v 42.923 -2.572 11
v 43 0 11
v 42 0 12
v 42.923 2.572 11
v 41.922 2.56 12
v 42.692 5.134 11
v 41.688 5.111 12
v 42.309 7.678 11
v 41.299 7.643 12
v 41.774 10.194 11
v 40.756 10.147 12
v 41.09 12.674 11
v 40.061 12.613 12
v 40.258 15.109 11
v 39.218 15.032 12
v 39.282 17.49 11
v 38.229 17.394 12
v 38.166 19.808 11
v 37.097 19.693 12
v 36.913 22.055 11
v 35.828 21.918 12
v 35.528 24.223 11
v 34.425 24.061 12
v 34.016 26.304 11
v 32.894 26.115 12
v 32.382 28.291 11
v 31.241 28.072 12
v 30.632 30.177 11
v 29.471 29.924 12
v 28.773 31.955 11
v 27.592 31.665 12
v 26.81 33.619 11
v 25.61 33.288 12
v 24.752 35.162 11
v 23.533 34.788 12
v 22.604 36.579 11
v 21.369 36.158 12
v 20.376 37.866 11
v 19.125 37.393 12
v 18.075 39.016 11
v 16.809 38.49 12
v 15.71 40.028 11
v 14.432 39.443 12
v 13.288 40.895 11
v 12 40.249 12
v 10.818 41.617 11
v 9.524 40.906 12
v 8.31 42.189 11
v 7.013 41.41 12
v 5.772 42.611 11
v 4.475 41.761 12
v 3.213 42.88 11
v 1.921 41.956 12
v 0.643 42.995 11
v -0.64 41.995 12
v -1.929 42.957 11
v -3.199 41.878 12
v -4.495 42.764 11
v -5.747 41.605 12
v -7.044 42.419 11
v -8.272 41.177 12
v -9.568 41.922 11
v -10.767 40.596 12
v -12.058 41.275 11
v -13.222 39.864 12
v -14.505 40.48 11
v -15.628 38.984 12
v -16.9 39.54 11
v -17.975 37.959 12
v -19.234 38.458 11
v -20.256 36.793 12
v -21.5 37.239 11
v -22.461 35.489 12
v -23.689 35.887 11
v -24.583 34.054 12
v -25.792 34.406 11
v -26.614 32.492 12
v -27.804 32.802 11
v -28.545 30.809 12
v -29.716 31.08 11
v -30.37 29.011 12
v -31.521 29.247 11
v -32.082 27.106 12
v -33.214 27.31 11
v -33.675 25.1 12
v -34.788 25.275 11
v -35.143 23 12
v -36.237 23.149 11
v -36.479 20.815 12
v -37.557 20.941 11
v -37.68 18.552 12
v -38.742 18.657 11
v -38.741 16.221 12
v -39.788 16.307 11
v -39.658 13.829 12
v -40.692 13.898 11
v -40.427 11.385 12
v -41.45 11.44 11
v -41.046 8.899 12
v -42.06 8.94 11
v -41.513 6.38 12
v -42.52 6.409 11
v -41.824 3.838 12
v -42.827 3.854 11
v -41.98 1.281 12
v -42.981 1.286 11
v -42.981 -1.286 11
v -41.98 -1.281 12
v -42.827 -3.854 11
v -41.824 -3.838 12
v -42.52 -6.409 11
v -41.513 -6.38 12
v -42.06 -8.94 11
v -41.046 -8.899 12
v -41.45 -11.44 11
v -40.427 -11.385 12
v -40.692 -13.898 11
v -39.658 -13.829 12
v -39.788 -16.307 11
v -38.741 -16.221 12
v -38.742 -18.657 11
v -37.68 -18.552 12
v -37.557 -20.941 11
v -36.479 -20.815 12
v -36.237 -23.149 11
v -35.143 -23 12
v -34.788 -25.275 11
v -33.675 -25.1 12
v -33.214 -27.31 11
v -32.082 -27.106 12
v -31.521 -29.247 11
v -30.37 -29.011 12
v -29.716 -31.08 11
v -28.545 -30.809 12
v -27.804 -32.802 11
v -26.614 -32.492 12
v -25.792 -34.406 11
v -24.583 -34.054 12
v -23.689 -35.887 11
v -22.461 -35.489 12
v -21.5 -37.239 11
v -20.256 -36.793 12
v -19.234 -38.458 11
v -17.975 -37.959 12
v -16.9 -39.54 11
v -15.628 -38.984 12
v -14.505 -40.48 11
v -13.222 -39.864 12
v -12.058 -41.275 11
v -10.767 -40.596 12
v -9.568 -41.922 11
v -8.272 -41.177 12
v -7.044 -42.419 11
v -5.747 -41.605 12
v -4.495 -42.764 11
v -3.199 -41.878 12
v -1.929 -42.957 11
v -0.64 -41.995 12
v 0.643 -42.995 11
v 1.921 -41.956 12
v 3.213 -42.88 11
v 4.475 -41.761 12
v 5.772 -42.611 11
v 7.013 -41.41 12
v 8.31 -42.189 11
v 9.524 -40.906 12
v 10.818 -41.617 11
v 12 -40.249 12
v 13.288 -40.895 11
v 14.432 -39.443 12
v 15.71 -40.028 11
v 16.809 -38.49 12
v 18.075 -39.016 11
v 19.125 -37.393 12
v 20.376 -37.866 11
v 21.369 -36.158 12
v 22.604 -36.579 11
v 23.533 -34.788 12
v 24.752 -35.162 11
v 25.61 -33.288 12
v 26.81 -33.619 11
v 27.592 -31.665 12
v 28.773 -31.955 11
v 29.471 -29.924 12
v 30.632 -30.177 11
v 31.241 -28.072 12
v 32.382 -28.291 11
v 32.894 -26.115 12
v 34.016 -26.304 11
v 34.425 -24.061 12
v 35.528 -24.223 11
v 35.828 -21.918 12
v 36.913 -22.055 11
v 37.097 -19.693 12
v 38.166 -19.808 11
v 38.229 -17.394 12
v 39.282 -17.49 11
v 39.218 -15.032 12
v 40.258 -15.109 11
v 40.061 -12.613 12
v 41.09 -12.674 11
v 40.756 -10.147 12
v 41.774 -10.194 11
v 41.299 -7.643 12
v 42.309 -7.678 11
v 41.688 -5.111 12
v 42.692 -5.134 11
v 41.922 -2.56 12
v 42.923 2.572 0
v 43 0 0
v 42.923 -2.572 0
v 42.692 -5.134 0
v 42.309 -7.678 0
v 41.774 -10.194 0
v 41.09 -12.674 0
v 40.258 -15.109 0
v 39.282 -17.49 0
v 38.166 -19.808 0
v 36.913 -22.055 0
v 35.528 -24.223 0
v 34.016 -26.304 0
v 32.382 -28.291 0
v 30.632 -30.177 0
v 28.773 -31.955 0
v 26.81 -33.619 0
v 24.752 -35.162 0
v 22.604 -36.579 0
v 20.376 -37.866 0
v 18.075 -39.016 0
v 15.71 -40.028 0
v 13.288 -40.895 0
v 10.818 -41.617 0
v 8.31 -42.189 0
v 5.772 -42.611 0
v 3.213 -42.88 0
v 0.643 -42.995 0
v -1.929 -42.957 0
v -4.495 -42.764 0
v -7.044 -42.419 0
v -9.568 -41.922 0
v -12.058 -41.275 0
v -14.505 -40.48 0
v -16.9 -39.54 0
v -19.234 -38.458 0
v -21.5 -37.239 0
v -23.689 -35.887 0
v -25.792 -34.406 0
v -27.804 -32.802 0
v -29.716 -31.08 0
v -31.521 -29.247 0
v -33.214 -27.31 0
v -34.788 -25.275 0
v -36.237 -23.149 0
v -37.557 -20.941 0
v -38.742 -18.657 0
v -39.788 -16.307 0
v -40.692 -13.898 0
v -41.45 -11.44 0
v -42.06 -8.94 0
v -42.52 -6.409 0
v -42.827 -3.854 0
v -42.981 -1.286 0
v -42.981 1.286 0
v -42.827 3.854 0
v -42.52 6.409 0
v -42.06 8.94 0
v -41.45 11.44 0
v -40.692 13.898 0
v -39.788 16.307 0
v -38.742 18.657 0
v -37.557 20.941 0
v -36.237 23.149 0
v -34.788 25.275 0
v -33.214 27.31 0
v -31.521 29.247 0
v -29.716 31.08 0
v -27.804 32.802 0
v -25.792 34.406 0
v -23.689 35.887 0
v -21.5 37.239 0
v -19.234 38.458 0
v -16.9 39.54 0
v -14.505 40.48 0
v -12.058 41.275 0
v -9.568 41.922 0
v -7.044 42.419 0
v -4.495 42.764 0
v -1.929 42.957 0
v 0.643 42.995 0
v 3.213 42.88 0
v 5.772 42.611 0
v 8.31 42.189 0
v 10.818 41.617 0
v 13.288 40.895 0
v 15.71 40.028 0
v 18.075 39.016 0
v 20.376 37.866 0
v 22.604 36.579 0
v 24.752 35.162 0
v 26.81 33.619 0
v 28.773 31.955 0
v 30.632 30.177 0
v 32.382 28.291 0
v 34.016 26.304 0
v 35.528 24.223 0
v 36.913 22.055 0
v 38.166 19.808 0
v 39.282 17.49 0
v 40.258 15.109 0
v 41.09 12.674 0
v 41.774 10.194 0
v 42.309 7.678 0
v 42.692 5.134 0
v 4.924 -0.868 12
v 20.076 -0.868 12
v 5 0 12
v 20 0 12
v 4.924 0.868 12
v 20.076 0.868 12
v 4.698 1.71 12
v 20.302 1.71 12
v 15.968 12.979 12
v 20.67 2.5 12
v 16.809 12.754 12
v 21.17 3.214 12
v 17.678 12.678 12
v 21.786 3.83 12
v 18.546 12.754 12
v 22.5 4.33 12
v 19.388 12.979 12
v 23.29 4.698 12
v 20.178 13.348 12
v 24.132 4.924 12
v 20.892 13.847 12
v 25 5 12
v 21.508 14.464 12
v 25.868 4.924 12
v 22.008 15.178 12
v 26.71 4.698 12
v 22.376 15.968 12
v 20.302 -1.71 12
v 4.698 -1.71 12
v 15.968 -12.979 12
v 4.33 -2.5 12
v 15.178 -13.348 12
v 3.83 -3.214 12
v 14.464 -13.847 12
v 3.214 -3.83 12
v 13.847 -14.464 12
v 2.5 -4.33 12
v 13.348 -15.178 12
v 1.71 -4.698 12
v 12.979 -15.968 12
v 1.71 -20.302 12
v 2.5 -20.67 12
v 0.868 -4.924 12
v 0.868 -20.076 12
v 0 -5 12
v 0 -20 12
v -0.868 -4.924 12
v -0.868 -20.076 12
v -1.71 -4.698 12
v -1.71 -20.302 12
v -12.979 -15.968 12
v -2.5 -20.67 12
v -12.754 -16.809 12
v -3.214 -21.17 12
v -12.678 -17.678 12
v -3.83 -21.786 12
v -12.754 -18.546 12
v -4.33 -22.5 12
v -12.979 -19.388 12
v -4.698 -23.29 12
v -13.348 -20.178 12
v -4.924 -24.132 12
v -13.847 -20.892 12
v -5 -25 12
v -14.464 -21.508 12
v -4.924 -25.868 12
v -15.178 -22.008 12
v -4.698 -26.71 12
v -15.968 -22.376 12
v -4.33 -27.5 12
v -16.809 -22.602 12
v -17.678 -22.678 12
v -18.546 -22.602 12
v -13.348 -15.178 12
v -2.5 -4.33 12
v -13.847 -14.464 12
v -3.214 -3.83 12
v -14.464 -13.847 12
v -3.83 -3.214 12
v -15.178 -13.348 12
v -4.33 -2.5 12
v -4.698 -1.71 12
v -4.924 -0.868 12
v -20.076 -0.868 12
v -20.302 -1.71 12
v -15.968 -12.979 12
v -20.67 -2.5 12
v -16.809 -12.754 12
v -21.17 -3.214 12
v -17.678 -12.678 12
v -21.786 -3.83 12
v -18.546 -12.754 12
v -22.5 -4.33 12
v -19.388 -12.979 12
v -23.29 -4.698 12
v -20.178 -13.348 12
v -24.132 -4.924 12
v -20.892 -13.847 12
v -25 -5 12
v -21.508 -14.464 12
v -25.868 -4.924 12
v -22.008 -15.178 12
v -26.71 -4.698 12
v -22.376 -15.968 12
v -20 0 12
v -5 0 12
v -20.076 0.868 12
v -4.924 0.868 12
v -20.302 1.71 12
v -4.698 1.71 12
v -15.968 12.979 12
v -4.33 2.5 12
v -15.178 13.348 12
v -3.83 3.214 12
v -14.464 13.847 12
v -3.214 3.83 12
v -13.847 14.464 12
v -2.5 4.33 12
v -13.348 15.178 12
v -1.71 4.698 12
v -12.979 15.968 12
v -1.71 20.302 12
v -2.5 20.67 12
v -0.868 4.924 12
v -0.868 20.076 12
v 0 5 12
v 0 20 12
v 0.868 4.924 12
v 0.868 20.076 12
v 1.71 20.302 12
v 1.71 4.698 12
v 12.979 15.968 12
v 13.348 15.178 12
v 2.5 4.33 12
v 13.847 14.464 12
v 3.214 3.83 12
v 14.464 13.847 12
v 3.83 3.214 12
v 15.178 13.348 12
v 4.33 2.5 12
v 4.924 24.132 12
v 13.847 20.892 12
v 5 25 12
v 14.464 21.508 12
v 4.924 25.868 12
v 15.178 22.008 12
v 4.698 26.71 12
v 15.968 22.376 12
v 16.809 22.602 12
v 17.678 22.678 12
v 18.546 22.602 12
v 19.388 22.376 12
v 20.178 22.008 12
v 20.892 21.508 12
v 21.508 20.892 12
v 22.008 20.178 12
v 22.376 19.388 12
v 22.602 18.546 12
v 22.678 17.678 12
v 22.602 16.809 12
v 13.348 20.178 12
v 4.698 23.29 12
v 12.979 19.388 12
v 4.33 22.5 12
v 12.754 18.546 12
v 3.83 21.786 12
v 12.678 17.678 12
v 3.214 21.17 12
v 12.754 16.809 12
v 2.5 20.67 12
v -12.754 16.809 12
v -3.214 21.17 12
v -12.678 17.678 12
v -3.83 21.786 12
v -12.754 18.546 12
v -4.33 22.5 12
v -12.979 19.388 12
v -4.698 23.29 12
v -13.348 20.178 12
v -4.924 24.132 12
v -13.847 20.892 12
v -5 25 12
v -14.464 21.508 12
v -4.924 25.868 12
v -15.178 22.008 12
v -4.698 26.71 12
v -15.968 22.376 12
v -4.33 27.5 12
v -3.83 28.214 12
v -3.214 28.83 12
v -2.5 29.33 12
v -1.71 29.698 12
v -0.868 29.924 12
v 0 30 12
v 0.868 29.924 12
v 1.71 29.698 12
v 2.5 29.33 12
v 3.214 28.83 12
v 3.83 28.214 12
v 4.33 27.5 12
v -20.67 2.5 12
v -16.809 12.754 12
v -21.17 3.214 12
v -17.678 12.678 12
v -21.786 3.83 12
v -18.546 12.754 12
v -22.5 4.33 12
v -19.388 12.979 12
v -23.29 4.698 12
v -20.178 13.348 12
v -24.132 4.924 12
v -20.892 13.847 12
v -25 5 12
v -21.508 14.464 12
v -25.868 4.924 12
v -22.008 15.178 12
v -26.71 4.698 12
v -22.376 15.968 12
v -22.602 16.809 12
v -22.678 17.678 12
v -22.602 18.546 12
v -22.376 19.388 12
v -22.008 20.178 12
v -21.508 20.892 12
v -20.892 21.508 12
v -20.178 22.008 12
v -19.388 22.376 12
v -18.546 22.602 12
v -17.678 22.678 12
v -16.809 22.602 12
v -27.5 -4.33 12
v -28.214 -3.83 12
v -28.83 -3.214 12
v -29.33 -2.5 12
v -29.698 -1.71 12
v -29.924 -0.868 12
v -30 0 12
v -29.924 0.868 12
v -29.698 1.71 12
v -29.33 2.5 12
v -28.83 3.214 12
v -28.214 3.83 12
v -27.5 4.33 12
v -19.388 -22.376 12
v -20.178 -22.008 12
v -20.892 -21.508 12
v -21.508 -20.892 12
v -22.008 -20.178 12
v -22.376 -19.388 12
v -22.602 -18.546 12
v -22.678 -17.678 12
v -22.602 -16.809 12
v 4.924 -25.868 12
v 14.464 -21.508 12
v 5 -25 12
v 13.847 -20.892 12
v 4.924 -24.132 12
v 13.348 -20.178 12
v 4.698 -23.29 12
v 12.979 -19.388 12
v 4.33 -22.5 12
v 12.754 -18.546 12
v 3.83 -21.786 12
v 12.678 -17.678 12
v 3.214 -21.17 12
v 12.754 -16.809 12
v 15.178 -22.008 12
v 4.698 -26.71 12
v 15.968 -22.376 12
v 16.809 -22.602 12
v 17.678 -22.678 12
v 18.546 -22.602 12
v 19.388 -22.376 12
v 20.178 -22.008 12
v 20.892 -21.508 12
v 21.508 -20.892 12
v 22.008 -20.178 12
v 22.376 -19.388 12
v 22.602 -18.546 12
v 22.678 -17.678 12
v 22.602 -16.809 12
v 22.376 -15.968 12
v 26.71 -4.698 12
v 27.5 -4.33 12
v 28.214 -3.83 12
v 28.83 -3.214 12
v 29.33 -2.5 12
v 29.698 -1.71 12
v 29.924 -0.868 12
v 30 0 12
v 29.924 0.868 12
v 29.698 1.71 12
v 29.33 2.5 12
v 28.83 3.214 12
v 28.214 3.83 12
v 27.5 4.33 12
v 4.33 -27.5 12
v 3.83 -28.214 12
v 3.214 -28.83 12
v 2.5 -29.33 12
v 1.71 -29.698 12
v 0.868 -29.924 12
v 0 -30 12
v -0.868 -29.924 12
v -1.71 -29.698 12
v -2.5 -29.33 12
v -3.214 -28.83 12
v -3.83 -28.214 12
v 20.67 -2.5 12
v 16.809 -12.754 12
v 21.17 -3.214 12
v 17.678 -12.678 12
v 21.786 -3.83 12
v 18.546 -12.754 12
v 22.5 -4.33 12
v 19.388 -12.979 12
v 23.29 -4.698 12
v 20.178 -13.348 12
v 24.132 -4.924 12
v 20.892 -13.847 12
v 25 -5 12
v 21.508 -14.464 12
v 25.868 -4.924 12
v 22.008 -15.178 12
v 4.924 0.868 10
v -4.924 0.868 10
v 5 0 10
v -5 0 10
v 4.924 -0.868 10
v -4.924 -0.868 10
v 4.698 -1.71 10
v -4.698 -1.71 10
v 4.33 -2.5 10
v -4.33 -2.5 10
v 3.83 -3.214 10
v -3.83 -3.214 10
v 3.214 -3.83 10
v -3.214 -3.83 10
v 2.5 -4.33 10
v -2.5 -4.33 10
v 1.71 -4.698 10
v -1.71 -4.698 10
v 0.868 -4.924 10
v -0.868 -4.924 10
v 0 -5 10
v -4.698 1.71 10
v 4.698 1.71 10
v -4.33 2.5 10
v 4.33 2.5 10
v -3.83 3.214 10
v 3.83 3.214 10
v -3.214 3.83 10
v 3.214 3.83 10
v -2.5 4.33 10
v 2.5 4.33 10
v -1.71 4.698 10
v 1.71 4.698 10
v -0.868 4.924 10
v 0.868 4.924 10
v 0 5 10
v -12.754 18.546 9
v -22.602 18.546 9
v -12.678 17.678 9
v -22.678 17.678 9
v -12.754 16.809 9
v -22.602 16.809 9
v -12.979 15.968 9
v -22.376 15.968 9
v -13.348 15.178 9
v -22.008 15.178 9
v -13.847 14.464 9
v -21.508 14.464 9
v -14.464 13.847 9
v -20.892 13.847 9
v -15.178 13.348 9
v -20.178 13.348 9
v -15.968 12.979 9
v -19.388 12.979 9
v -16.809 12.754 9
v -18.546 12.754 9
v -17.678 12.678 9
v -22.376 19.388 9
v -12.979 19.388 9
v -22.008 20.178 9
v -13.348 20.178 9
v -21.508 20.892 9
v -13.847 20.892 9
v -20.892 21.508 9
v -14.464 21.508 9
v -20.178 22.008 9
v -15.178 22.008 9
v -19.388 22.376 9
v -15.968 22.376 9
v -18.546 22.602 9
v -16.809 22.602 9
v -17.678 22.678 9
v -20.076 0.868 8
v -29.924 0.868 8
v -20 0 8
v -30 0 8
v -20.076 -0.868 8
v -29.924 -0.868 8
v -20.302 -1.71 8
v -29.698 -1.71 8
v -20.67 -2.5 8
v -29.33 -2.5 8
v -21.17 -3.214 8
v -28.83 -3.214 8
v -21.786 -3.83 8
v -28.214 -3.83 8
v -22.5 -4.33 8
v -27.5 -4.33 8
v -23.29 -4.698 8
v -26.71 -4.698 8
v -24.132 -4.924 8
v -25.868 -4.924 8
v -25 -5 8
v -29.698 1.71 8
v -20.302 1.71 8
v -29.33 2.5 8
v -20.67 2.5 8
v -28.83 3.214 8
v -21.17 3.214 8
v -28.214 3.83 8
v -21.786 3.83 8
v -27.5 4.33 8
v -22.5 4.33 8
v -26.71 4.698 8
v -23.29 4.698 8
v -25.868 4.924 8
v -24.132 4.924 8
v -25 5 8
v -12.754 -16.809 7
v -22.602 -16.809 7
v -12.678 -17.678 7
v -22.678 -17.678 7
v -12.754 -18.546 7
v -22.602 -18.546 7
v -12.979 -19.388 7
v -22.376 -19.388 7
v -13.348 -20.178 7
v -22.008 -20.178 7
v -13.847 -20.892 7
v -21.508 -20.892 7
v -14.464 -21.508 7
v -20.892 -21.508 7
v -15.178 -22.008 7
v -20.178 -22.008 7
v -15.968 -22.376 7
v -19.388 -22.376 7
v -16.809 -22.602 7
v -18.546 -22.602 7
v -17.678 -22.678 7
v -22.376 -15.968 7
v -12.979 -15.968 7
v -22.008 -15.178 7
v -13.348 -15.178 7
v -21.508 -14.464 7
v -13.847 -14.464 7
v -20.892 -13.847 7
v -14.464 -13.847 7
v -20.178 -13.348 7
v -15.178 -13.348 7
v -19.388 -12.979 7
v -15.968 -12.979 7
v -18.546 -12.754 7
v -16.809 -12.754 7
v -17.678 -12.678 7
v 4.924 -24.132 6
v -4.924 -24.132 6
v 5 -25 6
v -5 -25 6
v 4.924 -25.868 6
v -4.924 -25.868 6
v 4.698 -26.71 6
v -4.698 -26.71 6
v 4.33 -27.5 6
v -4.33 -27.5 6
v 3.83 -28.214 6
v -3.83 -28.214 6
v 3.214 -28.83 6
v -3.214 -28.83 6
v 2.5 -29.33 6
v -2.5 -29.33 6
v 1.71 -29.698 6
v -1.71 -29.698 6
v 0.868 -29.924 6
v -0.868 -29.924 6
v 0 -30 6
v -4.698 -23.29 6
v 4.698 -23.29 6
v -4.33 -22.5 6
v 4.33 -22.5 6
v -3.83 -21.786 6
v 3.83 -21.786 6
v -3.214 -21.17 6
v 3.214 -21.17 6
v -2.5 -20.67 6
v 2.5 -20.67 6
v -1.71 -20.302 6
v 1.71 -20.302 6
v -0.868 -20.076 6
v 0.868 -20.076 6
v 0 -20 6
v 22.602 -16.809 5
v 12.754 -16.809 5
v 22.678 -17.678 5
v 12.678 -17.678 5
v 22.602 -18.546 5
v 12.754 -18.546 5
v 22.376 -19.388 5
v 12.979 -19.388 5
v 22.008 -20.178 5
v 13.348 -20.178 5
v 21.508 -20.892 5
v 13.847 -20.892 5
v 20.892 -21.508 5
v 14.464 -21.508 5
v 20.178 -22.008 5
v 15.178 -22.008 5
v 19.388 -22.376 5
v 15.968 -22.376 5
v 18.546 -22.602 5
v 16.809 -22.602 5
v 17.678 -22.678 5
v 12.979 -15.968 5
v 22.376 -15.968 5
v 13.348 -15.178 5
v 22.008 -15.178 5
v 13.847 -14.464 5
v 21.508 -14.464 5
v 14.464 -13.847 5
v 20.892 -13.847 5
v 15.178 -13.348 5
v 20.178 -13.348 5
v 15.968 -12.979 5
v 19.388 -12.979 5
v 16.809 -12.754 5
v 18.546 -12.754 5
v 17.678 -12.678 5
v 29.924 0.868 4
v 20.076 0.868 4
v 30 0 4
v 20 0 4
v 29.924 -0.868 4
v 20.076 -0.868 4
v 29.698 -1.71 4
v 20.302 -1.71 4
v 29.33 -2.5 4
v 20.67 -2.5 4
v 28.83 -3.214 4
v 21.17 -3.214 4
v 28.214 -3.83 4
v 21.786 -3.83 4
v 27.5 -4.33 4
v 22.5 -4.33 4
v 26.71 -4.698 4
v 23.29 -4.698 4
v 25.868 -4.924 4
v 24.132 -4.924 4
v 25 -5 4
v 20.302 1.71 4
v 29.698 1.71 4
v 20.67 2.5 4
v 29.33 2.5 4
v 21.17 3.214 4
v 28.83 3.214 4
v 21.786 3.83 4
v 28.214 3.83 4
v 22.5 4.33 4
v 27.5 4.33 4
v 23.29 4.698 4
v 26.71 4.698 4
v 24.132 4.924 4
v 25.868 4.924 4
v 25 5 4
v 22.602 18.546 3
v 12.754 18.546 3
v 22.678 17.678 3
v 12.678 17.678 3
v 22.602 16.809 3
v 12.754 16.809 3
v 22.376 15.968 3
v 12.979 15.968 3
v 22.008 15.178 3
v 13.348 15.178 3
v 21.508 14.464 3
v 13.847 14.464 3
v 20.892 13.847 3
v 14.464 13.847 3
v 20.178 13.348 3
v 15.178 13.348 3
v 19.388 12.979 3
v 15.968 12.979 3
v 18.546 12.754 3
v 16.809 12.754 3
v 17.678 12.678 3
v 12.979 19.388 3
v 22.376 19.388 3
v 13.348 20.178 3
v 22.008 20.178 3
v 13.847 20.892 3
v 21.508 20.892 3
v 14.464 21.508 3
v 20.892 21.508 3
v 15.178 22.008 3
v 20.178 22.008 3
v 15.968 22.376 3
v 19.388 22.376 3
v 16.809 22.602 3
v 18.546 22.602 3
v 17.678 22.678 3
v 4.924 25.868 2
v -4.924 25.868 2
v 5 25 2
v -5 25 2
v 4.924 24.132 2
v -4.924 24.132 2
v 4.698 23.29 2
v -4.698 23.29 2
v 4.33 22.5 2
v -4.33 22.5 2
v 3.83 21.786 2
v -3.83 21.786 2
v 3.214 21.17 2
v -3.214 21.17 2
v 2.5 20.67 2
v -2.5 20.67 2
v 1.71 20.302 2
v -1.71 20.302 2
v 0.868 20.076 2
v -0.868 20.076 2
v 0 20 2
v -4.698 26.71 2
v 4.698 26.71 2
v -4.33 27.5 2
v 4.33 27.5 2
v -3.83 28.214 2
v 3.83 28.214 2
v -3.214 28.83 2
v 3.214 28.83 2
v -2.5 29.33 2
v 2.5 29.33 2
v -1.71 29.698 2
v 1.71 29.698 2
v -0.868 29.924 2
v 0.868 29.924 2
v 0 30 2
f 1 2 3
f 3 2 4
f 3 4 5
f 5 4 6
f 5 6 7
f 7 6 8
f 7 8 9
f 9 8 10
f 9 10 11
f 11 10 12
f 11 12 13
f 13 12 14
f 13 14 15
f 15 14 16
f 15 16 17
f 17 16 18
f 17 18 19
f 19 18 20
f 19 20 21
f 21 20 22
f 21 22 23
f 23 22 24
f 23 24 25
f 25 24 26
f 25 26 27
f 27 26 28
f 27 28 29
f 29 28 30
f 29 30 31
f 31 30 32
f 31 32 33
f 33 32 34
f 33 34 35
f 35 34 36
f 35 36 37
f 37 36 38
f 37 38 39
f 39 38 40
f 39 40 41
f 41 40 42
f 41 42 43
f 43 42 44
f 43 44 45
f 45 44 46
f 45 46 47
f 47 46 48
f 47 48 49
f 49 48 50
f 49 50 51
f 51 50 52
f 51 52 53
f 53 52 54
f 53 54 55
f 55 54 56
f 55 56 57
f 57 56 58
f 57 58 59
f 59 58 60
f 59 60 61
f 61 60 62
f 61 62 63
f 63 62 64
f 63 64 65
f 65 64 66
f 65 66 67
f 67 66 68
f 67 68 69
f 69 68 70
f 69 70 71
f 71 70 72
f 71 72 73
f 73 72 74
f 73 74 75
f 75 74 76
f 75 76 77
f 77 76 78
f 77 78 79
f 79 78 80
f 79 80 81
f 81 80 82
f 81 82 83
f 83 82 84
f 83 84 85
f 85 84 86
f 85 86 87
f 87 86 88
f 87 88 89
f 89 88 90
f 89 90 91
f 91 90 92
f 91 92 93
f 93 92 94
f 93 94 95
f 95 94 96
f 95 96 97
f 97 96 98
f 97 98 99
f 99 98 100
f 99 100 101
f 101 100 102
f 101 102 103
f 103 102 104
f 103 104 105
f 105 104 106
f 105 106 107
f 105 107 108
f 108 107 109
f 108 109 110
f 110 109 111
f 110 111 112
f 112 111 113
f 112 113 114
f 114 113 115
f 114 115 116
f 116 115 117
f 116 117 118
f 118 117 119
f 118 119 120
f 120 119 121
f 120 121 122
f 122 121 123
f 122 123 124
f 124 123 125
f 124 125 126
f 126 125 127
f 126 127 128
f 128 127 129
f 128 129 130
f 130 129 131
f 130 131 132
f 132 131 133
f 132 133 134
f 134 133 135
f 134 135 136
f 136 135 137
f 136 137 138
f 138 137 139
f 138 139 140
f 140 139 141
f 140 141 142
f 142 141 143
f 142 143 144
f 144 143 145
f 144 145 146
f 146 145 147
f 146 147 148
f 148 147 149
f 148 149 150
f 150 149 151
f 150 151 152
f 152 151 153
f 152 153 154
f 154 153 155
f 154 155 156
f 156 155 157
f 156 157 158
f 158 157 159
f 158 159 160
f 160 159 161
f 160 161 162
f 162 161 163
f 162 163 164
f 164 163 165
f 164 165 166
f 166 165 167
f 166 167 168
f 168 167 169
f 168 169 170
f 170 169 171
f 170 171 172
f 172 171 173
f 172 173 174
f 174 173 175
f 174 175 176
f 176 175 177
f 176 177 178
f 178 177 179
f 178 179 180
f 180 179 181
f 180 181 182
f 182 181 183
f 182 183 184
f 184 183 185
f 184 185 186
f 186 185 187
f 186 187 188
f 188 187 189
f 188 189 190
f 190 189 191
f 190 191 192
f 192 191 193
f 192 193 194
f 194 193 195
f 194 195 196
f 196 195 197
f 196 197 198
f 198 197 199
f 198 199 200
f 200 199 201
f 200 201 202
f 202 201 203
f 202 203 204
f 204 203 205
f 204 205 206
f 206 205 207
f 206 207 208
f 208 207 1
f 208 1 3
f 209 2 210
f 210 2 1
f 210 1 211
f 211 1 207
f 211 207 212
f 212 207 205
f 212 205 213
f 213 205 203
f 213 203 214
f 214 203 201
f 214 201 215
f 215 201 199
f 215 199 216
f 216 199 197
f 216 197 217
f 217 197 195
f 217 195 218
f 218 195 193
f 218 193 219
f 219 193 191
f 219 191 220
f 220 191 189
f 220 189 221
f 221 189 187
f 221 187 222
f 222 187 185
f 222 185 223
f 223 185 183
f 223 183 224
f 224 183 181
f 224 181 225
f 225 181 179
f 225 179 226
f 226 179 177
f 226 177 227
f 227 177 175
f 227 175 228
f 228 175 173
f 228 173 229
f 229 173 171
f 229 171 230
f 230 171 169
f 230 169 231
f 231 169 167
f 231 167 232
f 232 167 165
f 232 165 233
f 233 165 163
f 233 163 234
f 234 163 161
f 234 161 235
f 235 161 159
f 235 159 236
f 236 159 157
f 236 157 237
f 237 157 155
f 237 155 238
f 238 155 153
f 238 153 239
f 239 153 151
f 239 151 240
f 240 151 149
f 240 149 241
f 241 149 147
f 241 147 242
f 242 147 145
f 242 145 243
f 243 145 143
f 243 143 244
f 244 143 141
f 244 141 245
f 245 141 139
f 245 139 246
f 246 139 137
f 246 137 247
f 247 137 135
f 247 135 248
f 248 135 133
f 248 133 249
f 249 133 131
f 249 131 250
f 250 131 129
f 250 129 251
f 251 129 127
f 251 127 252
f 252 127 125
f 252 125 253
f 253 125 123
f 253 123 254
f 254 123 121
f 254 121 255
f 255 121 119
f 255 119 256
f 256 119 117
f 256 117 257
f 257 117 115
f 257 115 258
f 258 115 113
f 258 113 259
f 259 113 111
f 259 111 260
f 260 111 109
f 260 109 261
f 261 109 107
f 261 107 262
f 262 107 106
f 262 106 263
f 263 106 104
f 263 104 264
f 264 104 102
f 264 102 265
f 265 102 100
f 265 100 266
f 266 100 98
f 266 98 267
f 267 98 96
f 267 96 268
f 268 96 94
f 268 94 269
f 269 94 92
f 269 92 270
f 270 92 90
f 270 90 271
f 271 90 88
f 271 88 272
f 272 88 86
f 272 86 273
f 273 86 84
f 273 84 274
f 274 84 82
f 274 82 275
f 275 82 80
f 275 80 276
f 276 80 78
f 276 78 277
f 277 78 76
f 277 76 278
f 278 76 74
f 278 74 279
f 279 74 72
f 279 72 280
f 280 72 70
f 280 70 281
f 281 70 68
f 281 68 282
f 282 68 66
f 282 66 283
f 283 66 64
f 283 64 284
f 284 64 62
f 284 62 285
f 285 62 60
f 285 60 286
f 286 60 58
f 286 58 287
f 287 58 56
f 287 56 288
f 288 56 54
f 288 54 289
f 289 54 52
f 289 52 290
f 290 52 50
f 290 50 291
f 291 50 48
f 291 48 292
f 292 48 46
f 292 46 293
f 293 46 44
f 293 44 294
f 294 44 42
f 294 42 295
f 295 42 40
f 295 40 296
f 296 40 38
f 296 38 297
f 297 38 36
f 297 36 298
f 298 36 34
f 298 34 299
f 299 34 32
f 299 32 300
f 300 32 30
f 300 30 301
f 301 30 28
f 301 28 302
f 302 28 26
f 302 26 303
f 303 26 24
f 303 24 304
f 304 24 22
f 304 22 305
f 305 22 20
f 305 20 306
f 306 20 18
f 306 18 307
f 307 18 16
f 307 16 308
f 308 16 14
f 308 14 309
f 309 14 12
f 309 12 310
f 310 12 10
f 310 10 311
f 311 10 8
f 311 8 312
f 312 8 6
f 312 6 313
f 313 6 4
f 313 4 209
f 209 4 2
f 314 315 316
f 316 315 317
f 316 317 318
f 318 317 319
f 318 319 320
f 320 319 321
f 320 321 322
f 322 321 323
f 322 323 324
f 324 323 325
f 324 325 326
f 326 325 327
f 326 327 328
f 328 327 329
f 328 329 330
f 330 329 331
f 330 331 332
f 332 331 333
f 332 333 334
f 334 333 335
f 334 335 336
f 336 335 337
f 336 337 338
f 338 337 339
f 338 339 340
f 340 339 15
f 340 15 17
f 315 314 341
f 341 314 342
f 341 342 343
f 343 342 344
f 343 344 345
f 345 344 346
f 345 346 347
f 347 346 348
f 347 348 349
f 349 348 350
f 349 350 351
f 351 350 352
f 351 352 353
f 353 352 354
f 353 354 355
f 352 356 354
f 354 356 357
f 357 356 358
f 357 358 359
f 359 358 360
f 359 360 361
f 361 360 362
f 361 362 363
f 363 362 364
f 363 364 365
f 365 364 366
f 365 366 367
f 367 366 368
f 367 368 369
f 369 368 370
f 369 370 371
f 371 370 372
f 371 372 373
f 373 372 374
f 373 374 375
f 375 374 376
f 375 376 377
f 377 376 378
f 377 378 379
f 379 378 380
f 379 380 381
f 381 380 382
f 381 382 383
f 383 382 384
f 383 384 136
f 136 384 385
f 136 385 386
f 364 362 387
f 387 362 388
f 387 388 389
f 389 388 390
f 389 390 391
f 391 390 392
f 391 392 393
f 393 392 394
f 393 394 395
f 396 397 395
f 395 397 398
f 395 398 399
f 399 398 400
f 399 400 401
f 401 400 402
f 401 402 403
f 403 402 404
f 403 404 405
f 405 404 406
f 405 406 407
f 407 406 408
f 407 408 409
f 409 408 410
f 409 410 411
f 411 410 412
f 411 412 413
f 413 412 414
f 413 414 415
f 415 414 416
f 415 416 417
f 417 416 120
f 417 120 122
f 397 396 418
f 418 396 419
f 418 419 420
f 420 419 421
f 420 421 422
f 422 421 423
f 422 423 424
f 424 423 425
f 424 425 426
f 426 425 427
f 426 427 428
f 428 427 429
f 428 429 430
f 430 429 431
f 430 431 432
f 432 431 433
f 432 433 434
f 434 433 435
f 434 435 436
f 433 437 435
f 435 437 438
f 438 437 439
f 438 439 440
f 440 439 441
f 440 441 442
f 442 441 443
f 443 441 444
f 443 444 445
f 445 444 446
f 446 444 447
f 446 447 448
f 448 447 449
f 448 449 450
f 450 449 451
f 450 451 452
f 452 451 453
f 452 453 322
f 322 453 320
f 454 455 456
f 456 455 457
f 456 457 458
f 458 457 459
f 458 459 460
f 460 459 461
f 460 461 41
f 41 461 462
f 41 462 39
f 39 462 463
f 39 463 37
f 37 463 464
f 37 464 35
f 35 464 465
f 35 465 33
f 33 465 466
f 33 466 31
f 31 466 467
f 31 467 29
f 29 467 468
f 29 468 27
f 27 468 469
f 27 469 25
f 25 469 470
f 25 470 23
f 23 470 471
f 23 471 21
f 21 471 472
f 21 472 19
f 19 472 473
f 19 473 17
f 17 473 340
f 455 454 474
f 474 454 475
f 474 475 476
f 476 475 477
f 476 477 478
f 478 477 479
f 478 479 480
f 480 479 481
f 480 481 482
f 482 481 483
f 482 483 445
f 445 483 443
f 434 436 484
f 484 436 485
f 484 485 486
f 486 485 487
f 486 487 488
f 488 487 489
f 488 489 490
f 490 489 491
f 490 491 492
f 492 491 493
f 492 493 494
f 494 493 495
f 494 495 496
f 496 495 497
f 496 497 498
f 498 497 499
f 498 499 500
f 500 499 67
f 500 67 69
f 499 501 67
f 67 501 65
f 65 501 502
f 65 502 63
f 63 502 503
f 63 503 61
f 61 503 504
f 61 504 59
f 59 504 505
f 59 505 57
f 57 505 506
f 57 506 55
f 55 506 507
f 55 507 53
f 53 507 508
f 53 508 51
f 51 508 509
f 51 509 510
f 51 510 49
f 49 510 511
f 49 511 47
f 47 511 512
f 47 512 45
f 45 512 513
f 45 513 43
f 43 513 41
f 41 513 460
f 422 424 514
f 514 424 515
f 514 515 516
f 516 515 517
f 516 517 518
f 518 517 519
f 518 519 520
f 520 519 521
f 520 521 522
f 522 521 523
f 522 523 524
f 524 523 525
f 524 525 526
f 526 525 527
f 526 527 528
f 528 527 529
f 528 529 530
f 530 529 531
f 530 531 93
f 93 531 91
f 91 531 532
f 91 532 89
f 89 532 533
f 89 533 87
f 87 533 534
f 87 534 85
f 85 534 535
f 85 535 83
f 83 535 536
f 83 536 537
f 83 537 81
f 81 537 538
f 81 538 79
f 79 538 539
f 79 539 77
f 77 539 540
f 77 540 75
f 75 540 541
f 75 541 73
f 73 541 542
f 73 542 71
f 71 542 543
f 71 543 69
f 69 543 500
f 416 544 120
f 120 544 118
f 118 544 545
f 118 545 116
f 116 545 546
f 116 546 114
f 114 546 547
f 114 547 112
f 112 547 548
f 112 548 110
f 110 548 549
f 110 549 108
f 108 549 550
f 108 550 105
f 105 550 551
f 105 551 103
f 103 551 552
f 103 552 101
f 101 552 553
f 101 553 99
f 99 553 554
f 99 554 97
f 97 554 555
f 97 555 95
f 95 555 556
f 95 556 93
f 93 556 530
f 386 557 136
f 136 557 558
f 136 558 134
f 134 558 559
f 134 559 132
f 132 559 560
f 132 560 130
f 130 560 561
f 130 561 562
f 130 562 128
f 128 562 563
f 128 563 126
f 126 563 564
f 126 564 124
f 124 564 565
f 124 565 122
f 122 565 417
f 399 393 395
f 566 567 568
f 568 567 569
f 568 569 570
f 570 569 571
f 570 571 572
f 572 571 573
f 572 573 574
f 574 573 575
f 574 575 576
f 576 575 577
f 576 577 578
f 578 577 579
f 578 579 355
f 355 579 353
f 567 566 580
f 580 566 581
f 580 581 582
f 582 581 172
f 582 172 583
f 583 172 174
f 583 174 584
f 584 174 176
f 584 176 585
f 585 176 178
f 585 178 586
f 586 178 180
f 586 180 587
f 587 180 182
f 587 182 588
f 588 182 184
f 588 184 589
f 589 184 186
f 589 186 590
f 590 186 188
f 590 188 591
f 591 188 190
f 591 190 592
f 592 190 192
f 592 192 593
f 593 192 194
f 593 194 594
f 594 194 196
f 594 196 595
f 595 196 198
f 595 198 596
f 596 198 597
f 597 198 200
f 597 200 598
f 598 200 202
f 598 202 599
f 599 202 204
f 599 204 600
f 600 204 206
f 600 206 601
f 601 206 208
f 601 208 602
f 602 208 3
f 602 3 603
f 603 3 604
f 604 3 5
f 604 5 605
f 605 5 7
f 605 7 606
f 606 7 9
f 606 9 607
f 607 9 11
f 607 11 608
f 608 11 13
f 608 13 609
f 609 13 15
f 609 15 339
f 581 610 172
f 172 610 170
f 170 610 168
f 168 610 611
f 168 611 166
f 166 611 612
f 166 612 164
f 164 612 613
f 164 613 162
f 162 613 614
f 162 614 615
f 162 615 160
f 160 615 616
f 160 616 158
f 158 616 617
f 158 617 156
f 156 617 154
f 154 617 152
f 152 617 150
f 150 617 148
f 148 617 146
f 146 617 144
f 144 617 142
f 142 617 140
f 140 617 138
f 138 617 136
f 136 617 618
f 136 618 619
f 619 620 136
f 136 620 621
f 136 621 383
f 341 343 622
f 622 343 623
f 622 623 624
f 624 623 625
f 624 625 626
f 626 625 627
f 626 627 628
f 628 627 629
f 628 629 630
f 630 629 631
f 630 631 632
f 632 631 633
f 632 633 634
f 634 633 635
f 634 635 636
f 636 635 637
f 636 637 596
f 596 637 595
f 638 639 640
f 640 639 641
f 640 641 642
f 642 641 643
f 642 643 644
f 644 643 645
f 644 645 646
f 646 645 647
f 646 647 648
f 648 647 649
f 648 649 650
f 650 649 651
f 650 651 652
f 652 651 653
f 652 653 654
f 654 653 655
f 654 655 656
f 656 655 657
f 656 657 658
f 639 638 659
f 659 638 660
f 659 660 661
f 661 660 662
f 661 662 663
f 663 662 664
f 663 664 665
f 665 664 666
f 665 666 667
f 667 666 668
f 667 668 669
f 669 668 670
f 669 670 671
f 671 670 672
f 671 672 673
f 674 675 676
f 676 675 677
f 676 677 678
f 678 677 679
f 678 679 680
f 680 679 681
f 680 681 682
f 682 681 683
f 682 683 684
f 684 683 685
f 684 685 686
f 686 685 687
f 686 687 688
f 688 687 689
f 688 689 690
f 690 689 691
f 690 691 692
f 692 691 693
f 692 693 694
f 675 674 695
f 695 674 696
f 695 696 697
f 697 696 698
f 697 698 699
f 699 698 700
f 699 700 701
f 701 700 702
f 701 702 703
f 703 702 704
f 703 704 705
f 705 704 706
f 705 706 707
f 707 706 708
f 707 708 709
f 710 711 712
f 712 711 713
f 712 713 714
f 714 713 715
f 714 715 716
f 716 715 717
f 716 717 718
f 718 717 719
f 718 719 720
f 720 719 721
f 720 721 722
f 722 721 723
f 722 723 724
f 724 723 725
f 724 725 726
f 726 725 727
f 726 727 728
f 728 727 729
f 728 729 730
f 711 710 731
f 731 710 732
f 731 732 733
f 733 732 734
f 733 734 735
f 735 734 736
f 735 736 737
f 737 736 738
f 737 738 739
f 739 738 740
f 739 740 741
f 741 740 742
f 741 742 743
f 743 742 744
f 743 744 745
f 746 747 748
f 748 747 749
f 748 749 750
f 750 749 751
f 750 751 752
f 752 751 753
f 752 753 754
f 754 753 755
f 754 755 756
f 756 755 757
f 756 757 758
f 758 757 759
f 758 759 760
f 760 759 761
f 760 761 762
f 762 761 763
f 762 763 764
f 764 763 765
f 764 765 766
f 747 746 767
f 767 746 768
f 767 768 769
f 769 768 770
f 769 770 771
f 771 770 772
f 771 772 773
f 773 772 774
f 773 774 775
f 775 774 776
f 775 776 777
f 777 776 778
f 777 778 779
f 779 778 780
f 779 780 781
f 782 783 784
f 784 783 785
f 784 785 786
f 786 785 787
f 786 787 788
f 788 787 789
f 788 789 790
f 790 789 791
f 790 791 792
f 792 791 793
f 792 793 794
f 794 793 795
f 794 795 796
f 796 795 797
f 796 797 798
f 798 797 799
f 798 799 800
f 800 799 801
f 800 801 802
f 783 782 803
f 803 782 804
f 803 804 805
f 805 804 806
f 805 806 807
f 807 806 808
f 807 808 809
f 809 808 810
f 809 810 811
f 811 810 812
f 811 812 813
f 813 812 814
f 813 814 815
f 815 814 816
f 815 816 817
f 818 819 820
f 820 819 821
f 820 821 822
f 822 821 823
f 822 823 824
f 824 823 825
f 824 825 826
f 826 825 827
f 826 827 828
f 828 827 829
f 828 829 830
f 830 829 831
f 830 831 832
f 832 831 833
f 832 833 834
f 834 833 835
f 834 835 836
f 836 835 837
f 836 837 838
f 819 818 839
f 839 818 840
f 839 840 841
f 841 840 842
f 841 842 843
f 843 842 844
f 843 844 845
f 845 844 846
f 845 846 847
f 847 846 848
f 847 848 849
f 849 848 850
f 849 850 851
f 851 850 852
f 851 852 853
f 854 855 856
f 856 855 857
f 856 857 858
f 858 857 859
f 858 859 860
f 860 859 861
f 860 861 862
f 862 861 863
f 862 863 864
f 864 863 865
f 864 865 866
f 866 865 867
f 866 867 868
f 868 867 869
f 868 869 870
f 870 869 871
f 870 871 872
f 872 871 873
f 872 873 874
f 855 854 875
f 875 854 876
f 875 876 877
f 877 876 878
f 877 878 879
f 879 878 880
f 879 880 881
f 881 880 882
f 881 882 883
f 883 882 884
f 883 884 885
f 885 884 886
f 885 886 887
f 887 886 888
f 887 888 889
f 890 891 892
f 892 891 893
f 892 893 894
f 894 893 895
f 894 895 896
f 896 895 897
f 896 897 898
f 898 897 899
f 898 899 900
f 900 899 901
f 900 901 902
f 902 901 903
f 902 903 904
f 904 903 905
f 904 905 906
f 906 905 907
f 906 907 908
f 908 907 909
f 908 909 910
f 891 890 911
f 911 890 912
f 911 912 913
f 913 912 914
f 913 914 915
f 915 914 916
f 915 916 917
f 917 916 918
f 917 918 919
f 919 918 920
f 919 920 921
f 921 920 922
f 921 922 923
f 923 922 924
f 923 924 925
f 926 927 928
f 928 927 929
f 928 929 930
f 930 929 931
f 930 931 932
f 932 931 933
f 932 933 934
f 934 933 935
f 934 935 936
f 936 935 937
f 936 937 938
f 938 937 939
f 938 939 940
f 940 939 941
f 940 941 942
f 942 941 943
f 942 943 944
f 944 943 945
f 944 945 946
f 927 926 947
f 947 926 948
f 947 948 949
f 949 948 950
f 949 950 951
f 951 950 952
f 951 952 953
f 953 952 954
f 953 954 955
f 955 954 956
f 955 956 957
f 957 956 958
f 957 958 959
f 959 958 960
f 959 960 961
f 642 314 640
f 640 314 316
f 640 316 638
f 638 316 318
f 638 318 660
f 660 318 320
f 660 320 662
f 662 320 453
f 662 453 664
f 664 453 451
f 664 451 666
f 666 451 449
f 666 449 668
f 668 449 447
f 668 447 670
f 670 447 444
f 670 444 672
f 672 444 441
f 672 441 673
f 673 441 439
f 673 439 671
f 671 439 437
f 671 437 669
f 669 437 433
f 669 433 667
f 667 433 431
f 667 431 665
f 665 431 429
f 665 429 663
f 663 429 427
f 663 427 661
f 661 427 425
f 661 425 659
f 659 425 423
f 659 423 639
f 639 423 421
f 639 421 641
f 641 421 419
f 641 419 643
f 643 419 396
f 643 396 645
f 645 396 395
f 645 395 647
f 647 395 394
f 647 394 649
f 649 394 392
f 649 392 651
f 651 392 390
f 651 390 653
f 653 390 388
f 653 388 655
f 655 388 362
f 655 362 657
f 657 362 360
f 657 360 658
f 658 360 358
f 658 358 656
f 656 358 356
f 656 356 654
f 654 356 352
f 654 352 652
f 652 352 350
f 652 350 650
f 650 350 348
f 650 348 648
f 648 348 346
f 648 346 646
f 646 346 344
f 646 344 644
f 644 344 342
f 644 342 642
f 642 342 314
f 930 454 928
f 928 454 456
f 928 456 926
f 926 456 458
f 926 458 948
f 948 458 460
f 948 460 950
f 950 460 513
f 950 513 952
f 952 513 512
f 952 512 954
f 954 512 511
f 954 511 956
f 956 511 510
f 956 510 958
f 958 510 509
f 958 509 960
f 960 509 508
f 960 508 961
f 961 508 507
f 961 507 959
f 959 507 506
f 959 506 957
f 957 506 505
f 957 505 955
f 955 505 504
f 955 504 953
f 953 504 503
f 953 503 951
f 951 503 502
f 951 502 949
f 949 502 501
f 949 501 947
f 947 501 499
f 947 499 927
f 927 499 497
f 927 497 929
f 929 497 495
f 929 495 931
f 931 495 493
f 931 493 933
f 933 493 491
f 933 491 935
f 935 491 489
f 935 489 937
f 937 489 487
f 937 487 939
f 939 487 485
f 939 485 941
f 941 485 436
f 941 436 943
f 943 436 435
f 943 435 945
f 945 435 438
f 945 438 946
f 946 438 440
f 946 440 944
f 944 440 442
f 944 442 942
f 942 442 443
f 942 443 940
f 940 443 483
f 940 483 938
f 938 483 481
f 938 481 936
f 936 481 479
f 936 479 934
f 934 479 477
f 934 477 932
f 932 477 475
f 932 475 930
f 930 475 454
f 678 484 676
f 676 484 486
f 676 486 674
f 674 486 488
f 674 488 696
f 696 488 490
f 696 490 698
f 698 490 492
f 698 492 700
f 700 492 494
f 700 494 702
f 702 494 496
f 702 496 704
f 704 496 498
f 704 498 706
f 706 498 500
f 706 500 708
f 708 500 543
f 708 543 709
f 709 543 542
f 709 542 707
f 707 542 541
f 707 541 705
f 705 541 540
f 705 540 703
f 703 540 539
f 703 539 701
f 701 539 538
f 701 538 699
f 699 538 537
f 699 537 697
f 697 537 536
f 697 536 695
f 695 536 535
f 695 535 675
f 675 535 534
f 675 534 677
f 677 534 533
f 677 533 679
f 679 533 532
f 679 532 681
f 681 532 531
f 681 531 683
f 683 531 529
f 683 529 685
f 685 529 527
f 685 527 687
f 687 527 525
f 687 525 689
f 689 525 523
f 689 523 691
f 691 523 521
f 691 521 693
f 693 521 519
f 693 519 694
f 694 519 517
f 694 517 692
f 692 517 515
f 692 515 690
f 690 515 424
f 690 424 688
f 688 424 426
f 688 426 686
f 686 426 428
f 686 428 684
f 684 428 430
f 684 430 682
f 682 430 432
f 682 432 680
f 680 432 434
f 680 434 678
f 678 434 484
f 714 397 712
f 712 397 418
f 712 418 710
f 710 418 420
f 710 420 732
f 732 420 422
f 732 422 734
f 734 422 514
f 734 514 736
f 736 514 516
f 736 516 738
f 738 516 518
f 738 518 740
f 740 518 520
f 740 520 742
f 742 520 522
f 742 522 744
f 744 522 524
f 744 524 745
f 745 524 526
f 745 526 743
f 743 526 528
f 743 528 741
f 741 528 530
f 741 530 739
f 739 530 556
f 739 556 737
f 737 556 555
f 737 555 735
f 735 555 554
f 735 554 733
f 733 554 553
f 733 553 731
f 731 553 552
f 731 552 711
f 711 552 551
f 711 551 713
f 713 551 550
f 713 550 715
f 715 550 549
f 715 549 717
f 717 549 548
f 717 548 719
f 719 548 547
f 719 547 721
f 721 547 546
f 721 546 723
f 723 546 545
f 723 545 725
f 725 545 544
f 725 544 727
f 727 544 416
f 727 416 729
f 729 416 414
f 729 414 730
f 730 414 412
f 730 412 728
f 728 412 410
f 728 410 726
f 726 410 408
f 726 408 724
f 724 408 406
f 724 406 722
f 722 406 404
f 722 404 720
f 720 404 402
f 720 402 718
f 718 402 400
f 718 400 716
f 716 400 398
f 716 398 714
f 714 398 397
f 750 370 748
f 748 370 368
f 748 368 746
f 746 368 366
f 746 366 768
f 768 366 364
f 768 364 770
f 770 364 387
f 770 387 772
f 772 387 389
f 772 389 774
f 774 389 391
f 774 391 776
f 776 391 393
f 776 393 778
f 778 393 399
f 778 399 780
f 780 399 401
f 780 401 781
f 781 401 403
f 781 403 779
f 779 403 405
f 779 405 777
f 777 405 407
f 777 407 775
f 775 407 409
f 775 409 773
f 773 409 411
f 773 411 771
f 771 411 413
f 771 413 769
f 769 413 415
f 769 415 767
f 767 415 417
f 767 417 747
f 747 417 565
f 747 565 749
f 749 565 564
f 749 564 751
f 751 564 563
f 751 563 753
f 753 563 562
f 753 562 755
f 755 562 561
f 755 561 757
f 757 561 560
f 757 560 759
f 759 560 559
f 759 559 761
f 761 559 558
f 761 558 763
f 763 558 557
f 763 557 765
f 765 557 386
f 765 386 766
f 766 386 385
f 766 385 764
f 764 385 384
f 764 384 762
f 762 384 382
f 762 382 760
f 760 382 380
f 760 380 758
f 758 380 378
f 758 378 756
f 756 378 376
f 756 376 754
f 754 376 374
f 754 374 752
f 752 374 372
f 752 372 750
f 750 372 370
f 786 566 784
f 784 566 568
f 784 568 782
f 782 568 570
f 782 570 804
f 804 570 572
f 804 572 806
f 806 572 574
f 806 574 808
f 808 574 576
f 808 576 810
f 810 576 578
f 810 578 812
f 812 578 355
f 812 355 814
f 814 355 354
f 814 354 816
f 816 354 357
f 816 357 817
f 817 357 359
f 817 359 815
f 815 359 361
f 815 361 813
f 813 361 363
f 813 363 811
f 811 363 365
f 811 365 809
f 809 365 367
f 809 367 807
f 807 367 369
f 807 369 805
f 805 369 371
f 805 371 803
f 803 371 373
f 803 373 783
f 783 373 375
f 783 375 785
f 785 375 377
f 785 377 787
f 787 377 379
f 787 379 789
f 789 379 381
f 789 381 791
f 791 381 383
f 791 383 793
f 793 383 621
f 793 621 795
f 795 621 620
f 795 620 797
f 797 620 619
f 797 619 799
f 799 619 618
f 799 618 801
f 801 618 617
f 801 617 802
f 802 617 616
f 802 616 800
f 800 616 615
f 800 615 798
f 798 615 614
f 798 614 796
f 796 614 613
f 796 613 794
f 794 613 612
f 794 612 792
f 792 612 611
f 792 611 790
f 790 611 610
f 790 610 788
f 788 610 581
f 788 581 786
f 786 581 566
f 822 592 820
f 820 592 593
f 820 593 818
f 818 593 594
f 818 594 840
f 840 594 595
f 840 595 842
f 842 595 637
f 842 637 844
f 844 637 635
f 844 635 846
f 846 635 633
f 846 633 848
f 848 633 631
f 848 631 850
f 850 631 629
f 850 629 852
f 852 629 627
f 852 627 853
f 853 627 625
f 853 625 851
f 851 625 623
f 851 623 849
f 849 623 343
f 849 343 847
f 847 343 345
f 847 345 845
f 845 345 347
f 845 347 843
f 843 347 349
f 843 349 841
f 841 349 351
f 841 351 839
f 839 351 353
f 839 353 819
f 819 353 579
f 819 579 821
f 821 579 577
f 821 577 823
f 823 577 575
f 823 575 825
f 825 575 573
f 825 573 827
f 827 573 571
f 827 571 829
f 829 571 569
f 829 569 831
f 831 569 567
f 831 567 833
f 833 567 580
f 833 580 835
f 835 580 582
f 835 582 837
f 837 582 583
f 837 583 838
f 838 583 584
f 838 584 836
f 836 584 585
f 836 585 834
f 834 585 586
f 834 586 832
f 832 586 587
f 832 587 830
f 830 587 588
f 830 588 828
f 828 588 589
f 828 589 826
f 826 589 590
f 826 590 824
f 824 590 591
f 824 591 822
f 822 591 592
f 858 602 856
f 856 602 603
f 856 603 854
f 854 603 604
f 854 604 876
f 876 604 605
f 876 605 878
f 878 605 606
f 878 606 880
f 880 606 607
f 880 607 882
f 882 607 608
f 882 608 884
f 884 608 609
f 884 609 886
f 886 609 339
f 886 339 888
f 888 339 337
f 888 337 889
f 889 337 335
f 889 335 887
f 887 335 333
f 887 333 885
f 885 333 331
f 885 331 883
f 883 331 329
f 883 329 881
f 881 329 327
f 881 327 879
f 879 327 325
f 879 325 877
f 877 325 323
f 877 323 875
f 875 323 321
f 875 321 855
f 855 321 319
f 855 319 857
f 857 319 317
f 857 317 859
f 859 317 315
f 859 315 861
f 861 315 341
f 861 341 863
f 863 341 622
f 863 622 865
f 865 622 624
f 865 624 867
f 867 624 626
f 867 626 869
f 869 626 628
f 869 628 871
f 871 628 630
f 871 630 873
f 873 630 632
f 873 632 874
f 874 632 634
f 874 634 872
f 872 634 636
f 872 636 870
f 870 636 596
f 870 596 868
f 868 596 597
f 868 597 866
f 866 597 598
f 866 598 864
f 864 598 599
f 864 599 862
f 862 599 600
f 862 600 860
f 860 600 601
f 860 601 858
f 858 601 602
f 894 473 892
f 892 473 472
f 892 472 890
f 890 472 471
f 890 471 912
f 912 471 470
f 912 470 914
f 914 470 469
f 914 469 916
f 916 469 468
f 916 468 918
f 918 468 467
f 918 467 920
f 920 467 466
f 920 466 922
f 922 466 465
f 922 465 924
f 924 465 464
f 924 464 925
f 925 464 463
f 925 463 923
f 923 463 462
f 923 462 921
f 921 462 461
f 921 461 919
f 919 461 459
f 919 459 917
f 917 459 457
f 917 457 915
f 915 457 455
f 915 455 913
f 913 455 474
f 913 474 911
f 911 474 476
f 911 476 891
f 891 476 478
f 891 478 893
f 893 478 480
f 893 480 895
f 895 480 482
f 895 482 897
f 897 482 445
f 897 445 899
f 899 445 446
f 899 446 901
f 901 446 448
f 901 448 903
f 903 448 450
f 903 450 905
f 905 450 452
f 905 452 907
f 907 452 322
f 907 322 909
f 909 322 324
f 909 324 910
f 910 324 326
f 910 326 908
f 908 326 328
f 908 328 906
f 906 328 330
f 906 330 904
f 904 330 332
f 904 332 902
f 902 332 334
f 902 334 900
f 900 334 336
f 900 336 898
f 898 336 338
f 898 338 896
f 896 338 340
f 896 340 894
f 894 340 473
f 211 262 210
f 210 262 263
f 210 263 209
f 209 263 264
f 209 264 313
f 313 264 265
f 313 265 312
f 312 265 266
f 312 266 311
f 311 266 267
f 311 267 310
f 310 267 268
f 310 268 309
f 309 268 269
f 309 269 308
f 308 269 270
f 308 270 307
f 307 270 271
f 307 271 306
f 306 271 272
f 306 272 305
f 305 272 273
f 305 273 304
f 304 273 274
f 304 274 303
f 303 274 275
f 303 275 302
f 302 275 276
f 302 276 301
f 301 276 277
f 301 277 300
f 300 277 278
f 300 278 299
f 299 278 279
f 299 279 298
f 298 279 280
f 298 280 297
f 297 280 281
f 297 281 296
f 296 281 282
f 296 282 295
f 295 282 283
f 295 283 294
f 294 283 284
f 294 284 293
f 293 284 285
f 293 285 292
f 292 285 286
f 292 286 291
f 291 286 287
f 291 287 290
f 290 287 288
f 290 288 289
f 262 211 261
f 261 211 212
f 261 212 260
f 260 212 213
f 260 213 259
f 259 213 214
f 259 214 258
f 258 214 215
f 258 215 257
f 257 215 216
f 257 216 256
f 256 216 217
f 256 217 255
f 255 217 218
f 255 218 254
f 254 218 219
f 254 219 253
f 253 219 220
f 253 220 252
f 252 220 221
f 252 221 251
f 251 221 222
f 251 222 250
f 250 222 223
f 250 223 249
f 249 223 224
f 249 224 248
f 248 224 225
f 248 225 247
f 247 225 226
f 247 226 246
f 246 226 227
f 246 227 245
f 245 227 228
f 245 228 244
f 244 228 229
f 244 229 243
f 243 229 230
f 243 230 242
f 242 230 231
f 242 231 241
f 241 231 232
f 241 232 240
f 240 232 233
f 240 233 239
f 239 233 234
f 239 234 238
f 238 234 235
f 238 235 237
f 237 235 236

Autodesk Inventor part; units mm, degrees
ref_plane "YZ Plane" through (0, 0, 0) normal (1, 0, 0) x (0, 1, 0)
ref_plane "XZ Plane" through (0, 0, 0) normal (0, 1, 0) x (-1, 0, 0)
ref_plane "XY Plane" through (0, 0, 0) normal (0, 0, 1) x (1, 0, 0)
sketch "Sketch1" plane through (0, 0, 0) normal (0, 0, 1) x (1, 0, 0)
  circle A0 centre (0, 0) radius 43
  circle A1 centre (0, 0) radius 5
  circle A2 centre (0, 25) radius 5
  circle A3 centre (-17.6777, 17.6777) radius 5
  circle A4 centre (-25, 0) radius 5
  circle A5 centre (-17.6777, -17.6777) radius 5
  circle A6 centre (0, -25) radius 5
  circle A7 centre (17.6777, -17.6777) radius 5
  circle A8 centre (25, 0) radius 5
  circle A9 centre (17.6777, 17.6777) radius 5
  dimension "diameter" = 10
  dimension "d2" = 10
  dimension "d5" = 360
  dimension "d7" = 25
  dimension "d28" = 86
extrude "Extrusion1" add sketch "Sketch1" along normal blind 12
extrude "Extrusion2" add sketch "Sketch1" along normal blind 2 contours A2
extrude "Extrusion3" add sketch "Sketch1" along normal blind 3 contours A9
extrude "Extrusion4" add sketch "Sketch1" along normal blind 4 contours A8
extrude "Extrusion5" add sketch "Sketch1" along normal blind 5 contours A7
extrude "Extrusion6" add sketch "Sketch1" along normal blind 6 contours A6
extrude "Extrusion7" add sketch "Sketch1" along normal blind 7 contours A5
extrude "Extrusion8" add sketch "Sketch1" along normal blind 8 contours A4
extrude "Extrusion9" add sketch "Sketch1" along normal blind 9 contours A3
extrude "Extrusion10" add sketch "Sketch1" along normal blind 10 contours A1
sketch "Sketch2" plane through (0, 0, 12) normal (0, 0, 1) x (1, 0, 0)
  line L0 (-5.8774, 39.105) -> (5.7366, 39.105) construction
  line L1 (5.7366, 39.105) -> (5.7366, 35.936) construction
  line L2 (5.7366, 35.936) -> (-5.8774, 35.936) construction
  line L3 (-5.8774, 35.936) -> (-5.8774, 39.105) construction
  point P0 (0, 0)
emboss "Emboss1" [suppressed]
chamfer "Chamfer1" distance 1 angle 45 1 edges at (-43, 0, 12)
equation "\"d2\" = diameter"
properties part number "Diameter_10mm"
